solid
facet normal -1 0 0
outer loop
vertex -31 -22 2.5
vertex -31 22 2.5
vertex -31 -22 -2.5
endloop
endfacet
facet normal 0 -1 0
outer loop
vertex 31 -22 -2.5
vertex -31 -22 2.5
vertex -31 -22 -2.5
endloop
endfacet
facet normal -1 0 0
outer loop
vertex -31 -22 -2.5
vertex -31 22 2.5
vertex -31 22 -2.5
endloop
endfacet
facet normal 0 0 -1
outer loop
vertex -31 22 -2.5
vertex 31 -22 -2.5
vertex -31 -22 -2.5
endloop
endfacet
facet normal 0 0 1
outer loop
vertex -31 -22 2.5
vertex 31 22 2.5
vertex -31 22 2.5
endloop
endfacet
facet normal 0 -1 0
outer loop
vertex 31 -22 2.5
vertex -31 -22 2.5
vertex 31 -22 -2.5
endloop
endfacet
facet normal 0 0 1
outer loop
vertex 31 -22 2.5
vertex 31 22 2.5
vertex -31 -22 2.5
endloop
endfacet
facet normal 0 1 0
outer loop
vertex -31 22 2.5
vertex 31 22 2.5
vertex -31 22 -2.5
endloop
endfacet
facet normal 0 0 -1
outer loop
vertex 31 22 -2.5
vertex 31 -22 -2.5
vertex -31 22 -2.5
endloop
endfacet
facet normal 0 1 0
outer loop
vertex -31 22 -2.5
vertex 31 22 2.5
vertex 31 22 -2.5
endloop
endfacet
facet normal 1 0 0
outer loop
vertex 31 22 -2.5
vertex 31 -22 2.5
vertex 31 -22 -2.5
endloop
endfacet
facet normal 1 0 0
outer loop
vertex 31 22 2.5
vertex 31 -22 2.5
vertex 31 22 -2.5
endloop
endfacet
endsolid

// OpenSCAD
polyhedron(points=[[-31.0, -22.0, -2.5], [-31.0, -22.0, 2.5], [-31.0, 22.0, -2.5], [-31.0, 22.0, 2.5], [31.0, -22.0, -2.5], [31.0, -22.0, 2.5], [31.0, 22.0, -2.5], [31.0, 22.0, 2.5]], faces=[[1, 3, 0], [4, 1, 0], [0, 3, 2], [2, 4, 0], [1, 7, 3], [5, 1, 4], [5, 7, 1], [3, 7, 2], [6, 4, 2], [2, 7, 6], [6, 5, 4], [7, 5, 6]], convexity=30);
